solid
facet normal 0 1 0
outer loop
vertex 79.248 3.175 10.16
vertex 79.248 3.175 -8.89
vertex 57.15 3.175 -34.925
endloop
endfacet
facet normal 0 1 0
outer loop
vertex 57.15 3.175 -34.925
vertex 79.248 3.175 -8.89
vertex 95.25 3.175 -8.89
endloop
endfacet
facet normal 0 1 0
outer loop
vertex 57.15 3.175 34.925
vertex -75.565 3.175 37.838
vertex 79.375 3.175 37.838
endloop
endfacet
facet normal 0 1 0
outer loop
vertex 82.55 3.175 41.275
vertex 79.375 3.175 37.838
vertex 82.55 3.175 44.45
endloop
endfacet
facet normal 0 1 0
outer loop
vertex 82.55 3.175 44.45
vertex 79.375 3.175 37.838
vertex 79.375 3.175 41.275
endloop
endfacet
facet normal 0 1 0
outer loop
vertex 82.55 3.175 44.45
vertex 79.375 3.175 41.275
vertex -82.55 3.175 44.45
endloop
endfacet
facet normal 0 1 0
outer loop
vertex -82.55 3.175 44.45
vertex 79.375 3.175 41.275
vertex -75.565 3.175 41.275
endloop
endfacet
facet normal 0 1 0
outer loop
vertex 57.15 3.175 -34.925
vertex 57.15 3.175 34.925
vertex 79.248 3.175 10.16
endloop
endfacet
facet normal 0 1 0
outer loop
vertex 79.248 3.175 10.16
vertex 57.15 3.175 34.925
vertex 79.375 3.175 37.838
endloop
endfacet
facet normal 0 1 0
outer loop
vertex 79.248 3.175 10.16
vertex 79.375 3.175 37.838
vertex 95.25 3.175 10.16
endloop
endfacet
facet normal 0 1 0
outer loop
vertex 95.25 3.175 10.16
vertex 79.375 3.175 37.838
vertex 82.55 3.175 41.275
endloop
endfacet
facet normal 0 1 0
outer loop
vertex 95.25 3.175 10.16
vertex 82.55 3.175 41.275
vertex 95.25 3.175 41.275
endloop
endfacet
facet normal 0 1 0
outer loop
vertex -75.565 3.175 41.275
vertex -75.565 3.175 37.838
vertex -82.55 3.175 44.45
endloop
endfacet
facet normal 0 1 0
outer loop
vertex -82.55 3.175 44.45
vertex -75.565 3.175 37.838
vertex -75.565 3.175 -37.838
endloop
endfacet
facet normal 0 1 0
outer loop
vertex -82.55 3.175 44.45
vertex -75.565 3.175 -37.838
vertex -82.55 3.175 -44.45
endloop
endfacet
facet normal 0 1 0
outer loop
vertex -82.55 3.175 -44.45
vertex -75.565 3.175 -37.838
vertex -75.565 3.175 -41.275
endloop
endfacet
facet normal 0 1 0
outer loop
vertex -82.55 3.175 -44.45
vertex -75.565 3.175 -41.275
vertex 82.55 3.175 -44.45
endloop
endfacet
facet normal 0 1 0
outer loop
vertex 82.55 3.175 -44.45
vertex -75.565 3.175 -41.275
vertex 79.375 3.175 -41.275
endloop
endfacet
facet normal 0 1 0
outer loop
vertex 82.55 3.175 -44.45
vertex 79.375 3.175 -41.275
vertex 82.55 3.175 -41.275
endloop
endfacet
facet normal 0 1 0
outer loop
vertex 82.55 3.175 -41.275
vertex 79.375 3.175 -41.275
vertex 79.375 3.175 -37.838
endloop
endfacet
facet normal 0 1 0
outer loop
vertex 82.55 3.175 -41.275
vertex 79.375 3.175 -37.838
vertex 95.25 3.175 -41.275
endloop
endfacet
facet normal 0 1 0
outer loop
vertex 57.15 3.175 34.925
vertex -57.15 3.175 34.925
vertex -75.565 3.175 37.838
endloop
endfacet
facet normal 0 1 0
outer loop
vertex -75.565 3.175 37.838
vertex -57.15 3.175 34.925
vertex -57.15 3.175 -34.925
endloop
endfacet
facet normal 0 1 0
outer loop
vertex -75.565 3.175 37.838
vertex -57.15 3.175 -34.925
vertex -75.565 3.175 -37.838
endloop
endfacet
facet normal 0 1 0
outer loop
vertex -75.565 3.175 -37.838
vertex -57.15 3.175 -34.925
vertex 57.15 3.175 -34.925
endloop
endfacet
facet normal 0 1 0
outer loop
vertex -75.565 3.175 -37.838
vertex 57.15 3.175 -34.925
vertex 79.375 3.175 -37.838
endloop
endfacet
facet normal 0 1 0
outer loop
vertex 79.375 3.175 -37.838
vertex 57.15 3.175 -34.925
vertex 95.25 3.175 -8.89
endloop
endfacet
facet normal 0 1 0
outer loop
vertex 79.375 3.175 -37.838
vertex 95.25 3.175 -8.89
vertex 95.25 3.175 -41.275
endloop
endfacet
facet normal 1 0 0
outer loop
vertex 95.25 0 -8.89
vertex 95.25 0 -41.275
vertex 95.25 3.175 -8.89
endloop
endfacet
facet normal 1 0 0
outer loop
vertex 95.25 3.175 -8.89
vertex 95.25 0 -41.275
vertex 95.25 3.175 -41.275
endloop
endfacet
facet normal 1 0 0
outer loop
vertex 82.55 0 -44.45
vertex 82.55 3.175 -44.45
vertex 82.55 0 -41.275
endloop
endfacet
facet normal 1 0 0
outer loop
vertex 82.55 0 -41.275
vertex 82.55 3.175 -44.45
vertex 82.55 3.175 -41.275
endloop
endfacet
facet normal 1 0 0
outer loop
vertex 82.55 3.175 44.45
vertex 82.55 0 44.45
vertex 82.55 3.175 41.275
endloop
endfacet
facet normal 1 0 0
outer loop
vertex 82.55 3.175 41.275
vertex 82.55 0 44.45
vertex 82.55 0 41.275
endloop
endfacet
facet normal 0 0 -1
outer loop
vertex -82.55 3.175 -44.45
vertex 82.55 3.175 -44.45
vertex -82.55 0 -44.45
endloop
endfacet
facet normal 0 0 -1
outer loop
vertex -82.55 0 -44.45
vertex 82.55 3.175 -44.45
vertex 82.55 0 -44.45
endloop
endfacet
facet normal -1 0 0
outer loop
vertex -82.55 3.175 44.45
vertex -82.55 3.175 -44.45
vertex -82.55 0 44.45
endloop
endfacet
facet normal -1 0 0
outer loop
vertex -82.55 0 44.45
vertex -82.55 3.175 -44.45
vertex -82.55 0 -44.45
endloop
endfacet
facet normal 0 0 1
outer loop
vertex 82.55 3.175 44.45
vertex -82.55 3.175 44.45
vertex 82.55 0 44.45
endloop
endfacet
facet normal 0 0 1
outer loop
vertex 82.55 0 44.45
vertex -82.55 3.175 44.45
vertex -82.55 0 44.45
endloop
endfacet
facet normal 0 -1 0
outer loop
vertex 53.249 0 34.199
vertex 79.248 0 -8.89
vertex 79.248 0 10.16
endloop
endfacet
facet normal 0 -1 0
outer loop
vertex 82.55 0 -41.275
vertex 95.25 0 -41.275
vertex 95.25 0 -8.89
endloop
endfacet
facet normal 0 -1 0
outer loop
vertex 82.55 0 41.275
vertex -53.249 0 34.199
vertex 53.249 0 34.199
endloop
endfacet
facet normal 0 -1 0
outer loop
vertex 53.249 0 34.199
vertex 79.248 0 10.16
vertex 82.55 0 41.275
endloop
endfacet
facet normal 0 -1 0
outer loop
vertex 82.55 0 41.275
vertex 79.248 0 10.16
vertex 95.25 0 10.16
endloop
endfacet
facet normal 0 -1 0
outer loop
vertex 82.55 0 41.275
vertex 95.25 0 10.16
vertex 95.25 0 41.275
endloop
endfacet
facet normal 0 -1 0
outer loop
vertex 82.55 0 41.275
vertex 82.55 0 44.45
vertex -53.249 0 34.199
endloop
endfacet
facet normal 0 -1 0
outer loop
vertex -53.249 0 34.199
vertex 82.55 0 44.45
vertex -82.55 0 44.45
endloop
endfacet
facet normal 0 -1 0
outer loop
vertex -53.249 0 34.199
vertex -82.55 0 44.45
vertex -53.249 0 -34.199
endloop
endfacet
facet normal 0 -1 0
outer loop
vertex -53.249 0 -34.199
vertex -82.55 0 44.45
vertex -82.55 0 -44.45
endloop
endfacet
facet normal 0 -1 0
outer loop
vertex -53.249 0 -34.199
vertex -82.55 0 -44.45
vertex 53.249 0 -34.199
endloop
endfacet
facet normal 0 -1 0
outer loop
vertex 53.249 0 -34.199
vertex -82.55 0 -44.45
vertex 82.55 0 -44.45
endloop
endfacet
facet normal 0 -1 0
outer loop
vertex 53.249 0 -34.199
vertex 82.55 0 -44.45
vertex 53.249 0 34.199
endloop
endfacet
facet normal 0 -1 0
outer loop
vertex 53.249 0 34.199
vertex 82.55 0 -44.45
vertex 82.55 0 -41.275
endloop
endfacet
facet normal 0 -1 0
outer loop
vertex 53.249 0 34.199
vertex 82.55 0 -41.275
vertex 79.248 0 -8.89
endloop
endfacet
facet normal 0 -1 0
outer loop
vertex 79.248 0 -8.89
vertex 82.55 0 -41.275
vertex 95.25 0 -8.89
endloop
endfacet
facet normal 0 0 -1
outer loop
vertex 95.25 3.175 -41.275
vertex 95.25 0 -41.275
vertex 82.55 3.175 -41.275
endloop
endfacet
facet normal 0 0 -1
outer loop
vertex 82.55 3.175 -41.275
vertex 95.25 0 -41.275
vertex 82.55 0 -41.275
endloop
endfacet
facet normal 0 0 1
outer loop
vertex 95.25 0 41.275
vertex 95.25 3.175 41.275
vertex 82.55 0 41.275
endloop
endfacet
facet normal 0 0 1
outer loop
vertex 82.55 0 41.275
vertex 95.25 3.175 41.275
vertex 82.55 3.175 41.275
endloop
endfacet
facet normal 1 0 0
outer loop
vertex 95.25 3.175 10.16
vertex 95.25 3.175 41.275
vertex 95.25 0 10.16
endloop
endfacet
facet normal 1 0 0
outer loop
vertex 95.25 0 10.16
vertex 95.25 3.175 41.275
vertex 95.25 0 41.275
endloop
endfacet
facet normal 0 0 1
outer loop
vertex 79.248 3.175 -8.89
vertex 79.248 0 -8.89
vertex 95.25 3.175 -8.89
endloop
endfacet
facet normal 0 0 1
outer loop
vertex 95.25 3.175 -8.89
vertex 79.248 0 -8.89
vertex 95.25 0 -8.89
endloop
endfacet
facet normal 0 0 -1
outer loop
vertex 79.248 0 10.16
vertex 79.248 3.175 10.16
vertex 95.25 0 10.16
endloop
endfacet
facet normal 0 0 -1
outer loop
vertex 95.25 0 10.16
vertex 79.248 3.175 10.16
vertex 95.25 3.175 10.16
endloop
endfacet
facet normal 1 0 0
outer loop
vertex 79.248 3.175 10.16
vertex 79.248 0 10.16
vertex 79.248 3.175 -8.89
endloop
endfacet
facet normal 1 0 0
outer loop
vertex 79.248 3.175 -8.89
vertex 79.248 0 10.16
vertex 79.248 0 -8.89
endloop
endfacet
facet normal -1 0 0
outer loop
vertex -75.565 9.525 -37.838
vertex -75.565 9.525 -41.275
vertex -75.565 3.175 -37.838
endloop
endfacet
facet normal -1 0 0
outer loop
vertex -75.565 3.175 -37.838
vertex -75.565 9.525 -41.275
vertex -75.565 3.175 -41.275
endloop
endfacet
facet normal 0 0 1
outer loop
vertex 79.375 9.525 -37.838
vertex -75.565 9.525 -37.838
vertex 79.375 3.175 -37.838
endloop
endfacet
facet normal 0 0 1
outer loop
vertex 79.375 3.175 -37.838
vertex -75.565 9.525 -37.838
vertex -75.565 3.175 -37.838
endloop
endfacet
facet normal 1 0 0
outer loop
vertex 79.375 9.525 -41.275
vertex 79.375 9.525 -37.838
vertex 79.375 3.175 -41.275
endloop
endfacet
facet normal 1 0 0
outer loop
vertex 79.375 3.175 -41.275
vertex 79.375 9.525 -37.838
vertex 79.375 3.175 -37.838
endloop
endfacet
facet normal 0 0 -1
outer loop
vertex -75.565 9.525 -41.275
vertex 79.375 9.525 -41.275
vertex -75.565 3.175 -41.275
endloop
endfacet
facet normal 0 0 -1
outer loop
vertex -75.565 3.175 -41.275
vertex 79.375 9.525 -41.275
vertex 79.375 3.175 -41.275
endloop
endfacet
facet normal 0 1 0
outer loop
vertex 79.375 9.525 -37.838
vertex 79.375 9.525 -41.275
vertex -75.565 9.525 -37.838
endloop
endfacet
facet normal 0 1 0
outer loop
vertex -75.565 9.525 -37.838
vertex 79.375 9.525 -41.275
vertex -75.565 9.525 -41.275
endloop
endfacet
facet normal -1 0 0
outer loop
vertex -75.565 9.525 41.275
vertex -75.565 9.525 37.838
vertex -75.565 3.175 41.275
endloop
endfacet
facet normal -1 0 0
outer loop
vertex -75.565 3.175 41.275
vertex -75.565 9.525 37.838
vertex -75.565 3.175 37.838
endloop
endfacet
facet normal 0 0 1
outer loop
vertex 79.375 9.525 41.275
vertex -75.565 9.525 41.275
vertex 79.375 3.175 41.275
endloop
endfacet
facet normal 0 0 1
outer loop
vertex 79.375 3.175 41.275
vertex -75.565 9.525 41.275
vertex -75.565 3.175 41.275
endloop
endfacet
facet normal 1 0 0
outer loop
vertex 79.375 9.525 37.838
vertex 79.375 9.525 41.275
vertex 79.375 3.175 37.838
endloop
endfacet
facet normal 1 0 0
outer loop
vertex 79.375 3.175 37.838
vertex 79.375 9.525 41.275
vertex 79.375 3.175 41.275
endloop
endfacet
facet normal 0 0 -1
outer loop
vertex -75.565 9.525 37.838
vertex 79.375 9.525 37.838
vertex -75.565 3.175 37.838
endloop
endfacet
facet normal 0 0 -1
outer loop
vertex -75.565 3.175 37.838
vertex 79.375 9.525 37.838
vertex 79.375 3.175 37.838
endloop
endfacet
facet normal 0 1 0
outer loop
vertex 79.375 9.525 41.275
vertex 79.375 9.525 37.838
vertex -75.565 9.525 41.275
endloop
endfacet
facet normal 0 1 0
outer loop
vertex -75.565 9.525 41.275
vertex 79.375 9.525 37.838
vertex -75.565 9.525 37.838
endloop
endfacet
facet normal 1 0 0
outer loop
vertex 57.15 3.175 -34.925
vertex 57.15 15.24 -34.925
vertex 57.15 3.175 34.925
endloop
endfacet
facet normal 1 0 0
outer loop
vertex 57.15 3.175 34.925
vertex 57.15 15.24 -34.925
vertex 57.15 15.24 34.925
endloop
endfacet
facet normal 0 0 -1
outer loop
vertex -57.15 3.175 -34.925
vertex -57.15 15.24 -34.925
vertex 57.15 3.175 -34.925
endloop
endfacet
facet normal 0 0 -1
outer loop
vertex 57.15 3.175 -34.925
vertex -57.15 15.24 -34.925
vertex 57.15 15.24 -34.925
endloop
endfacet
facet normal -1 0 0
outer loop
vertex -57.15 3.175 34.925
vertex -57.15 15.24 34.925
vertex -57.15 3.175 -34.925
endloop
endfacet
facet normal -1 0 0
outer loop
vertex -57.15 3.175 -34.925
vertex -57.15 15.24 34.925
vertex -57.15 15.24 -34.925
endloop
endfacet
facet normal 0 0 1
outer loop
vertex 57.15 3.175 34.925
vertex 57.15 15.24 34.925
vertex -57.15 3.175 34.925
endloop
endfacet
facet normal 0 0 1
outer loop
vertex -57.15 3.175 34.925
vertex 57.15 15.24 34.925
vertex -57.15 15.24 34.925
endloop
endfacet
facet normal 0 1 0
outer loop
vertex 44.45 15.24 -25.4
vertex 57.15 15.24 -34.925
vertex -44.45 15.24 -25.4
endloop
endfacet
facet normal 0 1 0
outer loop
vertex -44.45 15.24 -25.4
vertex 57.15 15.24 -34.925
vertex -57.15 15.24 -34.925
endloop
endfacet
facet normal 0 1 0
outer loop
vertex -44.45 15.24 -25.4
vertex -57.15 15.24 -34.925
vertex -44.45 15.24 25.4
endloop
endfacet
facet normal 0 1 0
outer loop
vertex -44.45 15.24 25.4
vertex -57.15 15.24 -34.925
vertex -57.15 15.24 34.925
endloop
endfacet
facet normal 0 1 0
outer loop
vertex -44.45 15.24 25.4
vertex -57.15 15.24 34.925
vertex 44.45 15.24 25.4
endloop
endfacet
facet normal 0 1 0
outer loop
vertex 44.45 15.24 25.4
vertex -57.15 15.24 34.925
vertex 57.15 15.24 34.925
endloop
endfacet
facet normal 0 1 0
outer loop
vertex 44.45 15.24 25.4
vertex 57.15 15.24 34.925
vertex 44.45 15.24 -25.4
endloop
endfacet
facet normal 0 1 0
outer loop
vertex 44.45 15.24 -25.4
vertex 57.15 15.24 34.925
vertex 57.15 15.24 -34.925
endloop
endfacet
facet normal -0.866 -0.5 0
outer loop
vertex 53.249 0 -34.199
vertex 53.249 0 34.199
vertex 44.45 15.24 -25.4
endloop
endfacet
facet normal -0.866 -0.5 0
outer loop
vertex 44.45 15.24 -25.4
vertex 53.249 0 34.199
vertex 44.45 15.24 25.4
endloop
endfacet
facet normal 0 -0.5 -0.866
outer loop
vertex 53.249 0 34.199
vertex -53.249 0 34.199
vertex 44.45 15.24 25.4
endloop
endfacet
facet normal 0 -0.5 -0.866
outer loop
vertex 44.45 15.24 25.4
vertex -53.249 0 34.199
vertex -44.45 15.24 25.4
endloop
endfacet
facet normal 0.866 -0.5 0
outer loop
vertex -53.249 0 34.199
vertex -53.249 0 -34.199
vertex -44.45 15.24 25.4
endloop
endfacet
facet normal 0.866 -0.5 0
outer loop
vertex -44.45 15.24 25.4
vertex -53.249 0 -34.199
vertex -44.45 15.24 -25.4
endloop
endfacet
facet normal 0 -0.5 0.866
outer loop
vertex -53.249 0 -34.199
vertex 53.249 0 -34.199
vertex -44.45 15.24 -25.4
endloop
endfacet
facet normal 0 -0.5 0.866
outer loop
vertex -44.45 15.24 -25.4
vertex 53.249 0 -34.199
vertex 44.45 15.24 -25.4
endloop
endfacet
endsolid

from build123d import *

# Parameters (mm, degrees)
SKETCH1_W           = 165.1
SKETCH1_H           = 88.9
BOSS_EXTRUDE1_DEPTH = 3.175
SKETCH3_W           = 82.55
SKETCH3_H           = 3.175
BOSS_EXTRUDE3_DEPTH = 12.7
SKETCH6_W           = 19.05
SKETCH6_H           = 3.175
CUT_EXTRUDE1_DEPTH  = 16.002
SKETCH8_W           = 154.94
SKETCH8_H           = 3.437080139
BOSS_EXTRUDE4_DEPTH = 6.35
SKETCH9_W           = 114.3
SKETCH9_H           = 69.85
BOSS_EXTRUDE5_DEPTH = 15.24
SKETCH12_W          = 88.9
SKETCH12_H          = 50.8
CUT_EXTRUDE2_DEPTH  = 15.24
CUT_EXTRUDE2_DRAFT  = 30


with BuildPart() as part:
    # Sketch1 → Boss-Extrude1 (new body)
    with BuildSketch(Plane(origin=(0, 0, 0), x_dir=(1, 0, 0), z_dir=(0, 1, 0))):
        Rectangle(SKETCH1_W, SKETCH1_H)
    extrude(amount=BOSS_EXTRUDE1_DEPTH)

    # Sketch3 → Boss-Extrude3 (add)
    with BuildSketch(Plane(origin=(82.55, 0, 0), x_dir=(0, 0, -1), z_dir=(1, 0, 0))):
        with Locations((0, 1.5875)):
            Rectangle(SKETCH3_W, SKETCH3_H)
    extrude(amount=BOSS_EXTRUDE3_DEPTH)

    # Sketch6 → Cut-Extrude1 (cut)
    with BuildSketch(Plane(origin=(95.25, 0, 0), x_dir=(0, 0, -1), z_dir=(1, 0, 0))):
        with Locations((-0.635, 1.5875)):
            Rectangle(SKETCH6_W, SKETCH6_H)
    extrude(amount=-CUT_EXTRUDE1_DEPTH, mode=Mode.SUBTRACT)

    # Sketch8 → Boss-Extrude4 (add)
    with BuildSketch(Plane(origin=(0, 3.175, 0), x_dir=(1, 0, 0), z_dir=(0, 1, 0))):
        with Locations((1.905, -39.556459931)):
            Rectangle(SKETCH8_W, SKETCH8_H)
        with Locations((1.905, 39.556459931)):
            Rectangle(SKETCH8_W, SKETCH8_H)
    extrude(amount=BOSS_EXTRUDE4_DEPTH)

    # Sketch9 → Boss-Extrude5 (add)
    with BuildSketch(Plane(origin=(0, 0, 0), x_dir=(1, 0, 0), z_dir=(0, 1, 0))):
        Rectangle(SKETCH9_W, SKETCH9_H)
    extrude(amount=BOSS_EXTRUDE5_DEPTH)


with BuildPart() as cut_extrude2_tool:
    # Sketch12 → Cut-Extrude2 (with draft: the straight prism first)
    with BuildSketch(Plane(origin=(0, 15.24, 0), x_dir=(1, 0, 0), z_dir=(0, 1, 0))):
        Rectangle(SKETCH12_W, SKETCH12_H)
    extrude(amount=-CUT_EXTRUDE2_DEPTH)
    # Cut-Extrude2: the draft: its side faces are tilted about the plane it starts from
    cut_extrude2_sides = [cut_extrude2_tool.faces().sort_by_distance(p)[0] for p in [
        (-44.45, 7.62, 0),
        (0, 7.62, 25.4),
        (44.45, 7.62, 0),
        (0, 7.62, -25.4),
    ]]
    draft(cut_extrude2_sides, Plane(origin=(0, 15.24, 0), x_dir=(1, 0, 0), z_dir=(0, 1, 0)), CUT_EXTRUDE2_DRAFT)


with BuildPart() as part_1:
    add(part.part)

    # Cut-Extrude2: cut by cut_extrude2_tool
    add(cut_extrude2_tool.part, mode=Mode.SUBTRACT)


solid = part_1.part
